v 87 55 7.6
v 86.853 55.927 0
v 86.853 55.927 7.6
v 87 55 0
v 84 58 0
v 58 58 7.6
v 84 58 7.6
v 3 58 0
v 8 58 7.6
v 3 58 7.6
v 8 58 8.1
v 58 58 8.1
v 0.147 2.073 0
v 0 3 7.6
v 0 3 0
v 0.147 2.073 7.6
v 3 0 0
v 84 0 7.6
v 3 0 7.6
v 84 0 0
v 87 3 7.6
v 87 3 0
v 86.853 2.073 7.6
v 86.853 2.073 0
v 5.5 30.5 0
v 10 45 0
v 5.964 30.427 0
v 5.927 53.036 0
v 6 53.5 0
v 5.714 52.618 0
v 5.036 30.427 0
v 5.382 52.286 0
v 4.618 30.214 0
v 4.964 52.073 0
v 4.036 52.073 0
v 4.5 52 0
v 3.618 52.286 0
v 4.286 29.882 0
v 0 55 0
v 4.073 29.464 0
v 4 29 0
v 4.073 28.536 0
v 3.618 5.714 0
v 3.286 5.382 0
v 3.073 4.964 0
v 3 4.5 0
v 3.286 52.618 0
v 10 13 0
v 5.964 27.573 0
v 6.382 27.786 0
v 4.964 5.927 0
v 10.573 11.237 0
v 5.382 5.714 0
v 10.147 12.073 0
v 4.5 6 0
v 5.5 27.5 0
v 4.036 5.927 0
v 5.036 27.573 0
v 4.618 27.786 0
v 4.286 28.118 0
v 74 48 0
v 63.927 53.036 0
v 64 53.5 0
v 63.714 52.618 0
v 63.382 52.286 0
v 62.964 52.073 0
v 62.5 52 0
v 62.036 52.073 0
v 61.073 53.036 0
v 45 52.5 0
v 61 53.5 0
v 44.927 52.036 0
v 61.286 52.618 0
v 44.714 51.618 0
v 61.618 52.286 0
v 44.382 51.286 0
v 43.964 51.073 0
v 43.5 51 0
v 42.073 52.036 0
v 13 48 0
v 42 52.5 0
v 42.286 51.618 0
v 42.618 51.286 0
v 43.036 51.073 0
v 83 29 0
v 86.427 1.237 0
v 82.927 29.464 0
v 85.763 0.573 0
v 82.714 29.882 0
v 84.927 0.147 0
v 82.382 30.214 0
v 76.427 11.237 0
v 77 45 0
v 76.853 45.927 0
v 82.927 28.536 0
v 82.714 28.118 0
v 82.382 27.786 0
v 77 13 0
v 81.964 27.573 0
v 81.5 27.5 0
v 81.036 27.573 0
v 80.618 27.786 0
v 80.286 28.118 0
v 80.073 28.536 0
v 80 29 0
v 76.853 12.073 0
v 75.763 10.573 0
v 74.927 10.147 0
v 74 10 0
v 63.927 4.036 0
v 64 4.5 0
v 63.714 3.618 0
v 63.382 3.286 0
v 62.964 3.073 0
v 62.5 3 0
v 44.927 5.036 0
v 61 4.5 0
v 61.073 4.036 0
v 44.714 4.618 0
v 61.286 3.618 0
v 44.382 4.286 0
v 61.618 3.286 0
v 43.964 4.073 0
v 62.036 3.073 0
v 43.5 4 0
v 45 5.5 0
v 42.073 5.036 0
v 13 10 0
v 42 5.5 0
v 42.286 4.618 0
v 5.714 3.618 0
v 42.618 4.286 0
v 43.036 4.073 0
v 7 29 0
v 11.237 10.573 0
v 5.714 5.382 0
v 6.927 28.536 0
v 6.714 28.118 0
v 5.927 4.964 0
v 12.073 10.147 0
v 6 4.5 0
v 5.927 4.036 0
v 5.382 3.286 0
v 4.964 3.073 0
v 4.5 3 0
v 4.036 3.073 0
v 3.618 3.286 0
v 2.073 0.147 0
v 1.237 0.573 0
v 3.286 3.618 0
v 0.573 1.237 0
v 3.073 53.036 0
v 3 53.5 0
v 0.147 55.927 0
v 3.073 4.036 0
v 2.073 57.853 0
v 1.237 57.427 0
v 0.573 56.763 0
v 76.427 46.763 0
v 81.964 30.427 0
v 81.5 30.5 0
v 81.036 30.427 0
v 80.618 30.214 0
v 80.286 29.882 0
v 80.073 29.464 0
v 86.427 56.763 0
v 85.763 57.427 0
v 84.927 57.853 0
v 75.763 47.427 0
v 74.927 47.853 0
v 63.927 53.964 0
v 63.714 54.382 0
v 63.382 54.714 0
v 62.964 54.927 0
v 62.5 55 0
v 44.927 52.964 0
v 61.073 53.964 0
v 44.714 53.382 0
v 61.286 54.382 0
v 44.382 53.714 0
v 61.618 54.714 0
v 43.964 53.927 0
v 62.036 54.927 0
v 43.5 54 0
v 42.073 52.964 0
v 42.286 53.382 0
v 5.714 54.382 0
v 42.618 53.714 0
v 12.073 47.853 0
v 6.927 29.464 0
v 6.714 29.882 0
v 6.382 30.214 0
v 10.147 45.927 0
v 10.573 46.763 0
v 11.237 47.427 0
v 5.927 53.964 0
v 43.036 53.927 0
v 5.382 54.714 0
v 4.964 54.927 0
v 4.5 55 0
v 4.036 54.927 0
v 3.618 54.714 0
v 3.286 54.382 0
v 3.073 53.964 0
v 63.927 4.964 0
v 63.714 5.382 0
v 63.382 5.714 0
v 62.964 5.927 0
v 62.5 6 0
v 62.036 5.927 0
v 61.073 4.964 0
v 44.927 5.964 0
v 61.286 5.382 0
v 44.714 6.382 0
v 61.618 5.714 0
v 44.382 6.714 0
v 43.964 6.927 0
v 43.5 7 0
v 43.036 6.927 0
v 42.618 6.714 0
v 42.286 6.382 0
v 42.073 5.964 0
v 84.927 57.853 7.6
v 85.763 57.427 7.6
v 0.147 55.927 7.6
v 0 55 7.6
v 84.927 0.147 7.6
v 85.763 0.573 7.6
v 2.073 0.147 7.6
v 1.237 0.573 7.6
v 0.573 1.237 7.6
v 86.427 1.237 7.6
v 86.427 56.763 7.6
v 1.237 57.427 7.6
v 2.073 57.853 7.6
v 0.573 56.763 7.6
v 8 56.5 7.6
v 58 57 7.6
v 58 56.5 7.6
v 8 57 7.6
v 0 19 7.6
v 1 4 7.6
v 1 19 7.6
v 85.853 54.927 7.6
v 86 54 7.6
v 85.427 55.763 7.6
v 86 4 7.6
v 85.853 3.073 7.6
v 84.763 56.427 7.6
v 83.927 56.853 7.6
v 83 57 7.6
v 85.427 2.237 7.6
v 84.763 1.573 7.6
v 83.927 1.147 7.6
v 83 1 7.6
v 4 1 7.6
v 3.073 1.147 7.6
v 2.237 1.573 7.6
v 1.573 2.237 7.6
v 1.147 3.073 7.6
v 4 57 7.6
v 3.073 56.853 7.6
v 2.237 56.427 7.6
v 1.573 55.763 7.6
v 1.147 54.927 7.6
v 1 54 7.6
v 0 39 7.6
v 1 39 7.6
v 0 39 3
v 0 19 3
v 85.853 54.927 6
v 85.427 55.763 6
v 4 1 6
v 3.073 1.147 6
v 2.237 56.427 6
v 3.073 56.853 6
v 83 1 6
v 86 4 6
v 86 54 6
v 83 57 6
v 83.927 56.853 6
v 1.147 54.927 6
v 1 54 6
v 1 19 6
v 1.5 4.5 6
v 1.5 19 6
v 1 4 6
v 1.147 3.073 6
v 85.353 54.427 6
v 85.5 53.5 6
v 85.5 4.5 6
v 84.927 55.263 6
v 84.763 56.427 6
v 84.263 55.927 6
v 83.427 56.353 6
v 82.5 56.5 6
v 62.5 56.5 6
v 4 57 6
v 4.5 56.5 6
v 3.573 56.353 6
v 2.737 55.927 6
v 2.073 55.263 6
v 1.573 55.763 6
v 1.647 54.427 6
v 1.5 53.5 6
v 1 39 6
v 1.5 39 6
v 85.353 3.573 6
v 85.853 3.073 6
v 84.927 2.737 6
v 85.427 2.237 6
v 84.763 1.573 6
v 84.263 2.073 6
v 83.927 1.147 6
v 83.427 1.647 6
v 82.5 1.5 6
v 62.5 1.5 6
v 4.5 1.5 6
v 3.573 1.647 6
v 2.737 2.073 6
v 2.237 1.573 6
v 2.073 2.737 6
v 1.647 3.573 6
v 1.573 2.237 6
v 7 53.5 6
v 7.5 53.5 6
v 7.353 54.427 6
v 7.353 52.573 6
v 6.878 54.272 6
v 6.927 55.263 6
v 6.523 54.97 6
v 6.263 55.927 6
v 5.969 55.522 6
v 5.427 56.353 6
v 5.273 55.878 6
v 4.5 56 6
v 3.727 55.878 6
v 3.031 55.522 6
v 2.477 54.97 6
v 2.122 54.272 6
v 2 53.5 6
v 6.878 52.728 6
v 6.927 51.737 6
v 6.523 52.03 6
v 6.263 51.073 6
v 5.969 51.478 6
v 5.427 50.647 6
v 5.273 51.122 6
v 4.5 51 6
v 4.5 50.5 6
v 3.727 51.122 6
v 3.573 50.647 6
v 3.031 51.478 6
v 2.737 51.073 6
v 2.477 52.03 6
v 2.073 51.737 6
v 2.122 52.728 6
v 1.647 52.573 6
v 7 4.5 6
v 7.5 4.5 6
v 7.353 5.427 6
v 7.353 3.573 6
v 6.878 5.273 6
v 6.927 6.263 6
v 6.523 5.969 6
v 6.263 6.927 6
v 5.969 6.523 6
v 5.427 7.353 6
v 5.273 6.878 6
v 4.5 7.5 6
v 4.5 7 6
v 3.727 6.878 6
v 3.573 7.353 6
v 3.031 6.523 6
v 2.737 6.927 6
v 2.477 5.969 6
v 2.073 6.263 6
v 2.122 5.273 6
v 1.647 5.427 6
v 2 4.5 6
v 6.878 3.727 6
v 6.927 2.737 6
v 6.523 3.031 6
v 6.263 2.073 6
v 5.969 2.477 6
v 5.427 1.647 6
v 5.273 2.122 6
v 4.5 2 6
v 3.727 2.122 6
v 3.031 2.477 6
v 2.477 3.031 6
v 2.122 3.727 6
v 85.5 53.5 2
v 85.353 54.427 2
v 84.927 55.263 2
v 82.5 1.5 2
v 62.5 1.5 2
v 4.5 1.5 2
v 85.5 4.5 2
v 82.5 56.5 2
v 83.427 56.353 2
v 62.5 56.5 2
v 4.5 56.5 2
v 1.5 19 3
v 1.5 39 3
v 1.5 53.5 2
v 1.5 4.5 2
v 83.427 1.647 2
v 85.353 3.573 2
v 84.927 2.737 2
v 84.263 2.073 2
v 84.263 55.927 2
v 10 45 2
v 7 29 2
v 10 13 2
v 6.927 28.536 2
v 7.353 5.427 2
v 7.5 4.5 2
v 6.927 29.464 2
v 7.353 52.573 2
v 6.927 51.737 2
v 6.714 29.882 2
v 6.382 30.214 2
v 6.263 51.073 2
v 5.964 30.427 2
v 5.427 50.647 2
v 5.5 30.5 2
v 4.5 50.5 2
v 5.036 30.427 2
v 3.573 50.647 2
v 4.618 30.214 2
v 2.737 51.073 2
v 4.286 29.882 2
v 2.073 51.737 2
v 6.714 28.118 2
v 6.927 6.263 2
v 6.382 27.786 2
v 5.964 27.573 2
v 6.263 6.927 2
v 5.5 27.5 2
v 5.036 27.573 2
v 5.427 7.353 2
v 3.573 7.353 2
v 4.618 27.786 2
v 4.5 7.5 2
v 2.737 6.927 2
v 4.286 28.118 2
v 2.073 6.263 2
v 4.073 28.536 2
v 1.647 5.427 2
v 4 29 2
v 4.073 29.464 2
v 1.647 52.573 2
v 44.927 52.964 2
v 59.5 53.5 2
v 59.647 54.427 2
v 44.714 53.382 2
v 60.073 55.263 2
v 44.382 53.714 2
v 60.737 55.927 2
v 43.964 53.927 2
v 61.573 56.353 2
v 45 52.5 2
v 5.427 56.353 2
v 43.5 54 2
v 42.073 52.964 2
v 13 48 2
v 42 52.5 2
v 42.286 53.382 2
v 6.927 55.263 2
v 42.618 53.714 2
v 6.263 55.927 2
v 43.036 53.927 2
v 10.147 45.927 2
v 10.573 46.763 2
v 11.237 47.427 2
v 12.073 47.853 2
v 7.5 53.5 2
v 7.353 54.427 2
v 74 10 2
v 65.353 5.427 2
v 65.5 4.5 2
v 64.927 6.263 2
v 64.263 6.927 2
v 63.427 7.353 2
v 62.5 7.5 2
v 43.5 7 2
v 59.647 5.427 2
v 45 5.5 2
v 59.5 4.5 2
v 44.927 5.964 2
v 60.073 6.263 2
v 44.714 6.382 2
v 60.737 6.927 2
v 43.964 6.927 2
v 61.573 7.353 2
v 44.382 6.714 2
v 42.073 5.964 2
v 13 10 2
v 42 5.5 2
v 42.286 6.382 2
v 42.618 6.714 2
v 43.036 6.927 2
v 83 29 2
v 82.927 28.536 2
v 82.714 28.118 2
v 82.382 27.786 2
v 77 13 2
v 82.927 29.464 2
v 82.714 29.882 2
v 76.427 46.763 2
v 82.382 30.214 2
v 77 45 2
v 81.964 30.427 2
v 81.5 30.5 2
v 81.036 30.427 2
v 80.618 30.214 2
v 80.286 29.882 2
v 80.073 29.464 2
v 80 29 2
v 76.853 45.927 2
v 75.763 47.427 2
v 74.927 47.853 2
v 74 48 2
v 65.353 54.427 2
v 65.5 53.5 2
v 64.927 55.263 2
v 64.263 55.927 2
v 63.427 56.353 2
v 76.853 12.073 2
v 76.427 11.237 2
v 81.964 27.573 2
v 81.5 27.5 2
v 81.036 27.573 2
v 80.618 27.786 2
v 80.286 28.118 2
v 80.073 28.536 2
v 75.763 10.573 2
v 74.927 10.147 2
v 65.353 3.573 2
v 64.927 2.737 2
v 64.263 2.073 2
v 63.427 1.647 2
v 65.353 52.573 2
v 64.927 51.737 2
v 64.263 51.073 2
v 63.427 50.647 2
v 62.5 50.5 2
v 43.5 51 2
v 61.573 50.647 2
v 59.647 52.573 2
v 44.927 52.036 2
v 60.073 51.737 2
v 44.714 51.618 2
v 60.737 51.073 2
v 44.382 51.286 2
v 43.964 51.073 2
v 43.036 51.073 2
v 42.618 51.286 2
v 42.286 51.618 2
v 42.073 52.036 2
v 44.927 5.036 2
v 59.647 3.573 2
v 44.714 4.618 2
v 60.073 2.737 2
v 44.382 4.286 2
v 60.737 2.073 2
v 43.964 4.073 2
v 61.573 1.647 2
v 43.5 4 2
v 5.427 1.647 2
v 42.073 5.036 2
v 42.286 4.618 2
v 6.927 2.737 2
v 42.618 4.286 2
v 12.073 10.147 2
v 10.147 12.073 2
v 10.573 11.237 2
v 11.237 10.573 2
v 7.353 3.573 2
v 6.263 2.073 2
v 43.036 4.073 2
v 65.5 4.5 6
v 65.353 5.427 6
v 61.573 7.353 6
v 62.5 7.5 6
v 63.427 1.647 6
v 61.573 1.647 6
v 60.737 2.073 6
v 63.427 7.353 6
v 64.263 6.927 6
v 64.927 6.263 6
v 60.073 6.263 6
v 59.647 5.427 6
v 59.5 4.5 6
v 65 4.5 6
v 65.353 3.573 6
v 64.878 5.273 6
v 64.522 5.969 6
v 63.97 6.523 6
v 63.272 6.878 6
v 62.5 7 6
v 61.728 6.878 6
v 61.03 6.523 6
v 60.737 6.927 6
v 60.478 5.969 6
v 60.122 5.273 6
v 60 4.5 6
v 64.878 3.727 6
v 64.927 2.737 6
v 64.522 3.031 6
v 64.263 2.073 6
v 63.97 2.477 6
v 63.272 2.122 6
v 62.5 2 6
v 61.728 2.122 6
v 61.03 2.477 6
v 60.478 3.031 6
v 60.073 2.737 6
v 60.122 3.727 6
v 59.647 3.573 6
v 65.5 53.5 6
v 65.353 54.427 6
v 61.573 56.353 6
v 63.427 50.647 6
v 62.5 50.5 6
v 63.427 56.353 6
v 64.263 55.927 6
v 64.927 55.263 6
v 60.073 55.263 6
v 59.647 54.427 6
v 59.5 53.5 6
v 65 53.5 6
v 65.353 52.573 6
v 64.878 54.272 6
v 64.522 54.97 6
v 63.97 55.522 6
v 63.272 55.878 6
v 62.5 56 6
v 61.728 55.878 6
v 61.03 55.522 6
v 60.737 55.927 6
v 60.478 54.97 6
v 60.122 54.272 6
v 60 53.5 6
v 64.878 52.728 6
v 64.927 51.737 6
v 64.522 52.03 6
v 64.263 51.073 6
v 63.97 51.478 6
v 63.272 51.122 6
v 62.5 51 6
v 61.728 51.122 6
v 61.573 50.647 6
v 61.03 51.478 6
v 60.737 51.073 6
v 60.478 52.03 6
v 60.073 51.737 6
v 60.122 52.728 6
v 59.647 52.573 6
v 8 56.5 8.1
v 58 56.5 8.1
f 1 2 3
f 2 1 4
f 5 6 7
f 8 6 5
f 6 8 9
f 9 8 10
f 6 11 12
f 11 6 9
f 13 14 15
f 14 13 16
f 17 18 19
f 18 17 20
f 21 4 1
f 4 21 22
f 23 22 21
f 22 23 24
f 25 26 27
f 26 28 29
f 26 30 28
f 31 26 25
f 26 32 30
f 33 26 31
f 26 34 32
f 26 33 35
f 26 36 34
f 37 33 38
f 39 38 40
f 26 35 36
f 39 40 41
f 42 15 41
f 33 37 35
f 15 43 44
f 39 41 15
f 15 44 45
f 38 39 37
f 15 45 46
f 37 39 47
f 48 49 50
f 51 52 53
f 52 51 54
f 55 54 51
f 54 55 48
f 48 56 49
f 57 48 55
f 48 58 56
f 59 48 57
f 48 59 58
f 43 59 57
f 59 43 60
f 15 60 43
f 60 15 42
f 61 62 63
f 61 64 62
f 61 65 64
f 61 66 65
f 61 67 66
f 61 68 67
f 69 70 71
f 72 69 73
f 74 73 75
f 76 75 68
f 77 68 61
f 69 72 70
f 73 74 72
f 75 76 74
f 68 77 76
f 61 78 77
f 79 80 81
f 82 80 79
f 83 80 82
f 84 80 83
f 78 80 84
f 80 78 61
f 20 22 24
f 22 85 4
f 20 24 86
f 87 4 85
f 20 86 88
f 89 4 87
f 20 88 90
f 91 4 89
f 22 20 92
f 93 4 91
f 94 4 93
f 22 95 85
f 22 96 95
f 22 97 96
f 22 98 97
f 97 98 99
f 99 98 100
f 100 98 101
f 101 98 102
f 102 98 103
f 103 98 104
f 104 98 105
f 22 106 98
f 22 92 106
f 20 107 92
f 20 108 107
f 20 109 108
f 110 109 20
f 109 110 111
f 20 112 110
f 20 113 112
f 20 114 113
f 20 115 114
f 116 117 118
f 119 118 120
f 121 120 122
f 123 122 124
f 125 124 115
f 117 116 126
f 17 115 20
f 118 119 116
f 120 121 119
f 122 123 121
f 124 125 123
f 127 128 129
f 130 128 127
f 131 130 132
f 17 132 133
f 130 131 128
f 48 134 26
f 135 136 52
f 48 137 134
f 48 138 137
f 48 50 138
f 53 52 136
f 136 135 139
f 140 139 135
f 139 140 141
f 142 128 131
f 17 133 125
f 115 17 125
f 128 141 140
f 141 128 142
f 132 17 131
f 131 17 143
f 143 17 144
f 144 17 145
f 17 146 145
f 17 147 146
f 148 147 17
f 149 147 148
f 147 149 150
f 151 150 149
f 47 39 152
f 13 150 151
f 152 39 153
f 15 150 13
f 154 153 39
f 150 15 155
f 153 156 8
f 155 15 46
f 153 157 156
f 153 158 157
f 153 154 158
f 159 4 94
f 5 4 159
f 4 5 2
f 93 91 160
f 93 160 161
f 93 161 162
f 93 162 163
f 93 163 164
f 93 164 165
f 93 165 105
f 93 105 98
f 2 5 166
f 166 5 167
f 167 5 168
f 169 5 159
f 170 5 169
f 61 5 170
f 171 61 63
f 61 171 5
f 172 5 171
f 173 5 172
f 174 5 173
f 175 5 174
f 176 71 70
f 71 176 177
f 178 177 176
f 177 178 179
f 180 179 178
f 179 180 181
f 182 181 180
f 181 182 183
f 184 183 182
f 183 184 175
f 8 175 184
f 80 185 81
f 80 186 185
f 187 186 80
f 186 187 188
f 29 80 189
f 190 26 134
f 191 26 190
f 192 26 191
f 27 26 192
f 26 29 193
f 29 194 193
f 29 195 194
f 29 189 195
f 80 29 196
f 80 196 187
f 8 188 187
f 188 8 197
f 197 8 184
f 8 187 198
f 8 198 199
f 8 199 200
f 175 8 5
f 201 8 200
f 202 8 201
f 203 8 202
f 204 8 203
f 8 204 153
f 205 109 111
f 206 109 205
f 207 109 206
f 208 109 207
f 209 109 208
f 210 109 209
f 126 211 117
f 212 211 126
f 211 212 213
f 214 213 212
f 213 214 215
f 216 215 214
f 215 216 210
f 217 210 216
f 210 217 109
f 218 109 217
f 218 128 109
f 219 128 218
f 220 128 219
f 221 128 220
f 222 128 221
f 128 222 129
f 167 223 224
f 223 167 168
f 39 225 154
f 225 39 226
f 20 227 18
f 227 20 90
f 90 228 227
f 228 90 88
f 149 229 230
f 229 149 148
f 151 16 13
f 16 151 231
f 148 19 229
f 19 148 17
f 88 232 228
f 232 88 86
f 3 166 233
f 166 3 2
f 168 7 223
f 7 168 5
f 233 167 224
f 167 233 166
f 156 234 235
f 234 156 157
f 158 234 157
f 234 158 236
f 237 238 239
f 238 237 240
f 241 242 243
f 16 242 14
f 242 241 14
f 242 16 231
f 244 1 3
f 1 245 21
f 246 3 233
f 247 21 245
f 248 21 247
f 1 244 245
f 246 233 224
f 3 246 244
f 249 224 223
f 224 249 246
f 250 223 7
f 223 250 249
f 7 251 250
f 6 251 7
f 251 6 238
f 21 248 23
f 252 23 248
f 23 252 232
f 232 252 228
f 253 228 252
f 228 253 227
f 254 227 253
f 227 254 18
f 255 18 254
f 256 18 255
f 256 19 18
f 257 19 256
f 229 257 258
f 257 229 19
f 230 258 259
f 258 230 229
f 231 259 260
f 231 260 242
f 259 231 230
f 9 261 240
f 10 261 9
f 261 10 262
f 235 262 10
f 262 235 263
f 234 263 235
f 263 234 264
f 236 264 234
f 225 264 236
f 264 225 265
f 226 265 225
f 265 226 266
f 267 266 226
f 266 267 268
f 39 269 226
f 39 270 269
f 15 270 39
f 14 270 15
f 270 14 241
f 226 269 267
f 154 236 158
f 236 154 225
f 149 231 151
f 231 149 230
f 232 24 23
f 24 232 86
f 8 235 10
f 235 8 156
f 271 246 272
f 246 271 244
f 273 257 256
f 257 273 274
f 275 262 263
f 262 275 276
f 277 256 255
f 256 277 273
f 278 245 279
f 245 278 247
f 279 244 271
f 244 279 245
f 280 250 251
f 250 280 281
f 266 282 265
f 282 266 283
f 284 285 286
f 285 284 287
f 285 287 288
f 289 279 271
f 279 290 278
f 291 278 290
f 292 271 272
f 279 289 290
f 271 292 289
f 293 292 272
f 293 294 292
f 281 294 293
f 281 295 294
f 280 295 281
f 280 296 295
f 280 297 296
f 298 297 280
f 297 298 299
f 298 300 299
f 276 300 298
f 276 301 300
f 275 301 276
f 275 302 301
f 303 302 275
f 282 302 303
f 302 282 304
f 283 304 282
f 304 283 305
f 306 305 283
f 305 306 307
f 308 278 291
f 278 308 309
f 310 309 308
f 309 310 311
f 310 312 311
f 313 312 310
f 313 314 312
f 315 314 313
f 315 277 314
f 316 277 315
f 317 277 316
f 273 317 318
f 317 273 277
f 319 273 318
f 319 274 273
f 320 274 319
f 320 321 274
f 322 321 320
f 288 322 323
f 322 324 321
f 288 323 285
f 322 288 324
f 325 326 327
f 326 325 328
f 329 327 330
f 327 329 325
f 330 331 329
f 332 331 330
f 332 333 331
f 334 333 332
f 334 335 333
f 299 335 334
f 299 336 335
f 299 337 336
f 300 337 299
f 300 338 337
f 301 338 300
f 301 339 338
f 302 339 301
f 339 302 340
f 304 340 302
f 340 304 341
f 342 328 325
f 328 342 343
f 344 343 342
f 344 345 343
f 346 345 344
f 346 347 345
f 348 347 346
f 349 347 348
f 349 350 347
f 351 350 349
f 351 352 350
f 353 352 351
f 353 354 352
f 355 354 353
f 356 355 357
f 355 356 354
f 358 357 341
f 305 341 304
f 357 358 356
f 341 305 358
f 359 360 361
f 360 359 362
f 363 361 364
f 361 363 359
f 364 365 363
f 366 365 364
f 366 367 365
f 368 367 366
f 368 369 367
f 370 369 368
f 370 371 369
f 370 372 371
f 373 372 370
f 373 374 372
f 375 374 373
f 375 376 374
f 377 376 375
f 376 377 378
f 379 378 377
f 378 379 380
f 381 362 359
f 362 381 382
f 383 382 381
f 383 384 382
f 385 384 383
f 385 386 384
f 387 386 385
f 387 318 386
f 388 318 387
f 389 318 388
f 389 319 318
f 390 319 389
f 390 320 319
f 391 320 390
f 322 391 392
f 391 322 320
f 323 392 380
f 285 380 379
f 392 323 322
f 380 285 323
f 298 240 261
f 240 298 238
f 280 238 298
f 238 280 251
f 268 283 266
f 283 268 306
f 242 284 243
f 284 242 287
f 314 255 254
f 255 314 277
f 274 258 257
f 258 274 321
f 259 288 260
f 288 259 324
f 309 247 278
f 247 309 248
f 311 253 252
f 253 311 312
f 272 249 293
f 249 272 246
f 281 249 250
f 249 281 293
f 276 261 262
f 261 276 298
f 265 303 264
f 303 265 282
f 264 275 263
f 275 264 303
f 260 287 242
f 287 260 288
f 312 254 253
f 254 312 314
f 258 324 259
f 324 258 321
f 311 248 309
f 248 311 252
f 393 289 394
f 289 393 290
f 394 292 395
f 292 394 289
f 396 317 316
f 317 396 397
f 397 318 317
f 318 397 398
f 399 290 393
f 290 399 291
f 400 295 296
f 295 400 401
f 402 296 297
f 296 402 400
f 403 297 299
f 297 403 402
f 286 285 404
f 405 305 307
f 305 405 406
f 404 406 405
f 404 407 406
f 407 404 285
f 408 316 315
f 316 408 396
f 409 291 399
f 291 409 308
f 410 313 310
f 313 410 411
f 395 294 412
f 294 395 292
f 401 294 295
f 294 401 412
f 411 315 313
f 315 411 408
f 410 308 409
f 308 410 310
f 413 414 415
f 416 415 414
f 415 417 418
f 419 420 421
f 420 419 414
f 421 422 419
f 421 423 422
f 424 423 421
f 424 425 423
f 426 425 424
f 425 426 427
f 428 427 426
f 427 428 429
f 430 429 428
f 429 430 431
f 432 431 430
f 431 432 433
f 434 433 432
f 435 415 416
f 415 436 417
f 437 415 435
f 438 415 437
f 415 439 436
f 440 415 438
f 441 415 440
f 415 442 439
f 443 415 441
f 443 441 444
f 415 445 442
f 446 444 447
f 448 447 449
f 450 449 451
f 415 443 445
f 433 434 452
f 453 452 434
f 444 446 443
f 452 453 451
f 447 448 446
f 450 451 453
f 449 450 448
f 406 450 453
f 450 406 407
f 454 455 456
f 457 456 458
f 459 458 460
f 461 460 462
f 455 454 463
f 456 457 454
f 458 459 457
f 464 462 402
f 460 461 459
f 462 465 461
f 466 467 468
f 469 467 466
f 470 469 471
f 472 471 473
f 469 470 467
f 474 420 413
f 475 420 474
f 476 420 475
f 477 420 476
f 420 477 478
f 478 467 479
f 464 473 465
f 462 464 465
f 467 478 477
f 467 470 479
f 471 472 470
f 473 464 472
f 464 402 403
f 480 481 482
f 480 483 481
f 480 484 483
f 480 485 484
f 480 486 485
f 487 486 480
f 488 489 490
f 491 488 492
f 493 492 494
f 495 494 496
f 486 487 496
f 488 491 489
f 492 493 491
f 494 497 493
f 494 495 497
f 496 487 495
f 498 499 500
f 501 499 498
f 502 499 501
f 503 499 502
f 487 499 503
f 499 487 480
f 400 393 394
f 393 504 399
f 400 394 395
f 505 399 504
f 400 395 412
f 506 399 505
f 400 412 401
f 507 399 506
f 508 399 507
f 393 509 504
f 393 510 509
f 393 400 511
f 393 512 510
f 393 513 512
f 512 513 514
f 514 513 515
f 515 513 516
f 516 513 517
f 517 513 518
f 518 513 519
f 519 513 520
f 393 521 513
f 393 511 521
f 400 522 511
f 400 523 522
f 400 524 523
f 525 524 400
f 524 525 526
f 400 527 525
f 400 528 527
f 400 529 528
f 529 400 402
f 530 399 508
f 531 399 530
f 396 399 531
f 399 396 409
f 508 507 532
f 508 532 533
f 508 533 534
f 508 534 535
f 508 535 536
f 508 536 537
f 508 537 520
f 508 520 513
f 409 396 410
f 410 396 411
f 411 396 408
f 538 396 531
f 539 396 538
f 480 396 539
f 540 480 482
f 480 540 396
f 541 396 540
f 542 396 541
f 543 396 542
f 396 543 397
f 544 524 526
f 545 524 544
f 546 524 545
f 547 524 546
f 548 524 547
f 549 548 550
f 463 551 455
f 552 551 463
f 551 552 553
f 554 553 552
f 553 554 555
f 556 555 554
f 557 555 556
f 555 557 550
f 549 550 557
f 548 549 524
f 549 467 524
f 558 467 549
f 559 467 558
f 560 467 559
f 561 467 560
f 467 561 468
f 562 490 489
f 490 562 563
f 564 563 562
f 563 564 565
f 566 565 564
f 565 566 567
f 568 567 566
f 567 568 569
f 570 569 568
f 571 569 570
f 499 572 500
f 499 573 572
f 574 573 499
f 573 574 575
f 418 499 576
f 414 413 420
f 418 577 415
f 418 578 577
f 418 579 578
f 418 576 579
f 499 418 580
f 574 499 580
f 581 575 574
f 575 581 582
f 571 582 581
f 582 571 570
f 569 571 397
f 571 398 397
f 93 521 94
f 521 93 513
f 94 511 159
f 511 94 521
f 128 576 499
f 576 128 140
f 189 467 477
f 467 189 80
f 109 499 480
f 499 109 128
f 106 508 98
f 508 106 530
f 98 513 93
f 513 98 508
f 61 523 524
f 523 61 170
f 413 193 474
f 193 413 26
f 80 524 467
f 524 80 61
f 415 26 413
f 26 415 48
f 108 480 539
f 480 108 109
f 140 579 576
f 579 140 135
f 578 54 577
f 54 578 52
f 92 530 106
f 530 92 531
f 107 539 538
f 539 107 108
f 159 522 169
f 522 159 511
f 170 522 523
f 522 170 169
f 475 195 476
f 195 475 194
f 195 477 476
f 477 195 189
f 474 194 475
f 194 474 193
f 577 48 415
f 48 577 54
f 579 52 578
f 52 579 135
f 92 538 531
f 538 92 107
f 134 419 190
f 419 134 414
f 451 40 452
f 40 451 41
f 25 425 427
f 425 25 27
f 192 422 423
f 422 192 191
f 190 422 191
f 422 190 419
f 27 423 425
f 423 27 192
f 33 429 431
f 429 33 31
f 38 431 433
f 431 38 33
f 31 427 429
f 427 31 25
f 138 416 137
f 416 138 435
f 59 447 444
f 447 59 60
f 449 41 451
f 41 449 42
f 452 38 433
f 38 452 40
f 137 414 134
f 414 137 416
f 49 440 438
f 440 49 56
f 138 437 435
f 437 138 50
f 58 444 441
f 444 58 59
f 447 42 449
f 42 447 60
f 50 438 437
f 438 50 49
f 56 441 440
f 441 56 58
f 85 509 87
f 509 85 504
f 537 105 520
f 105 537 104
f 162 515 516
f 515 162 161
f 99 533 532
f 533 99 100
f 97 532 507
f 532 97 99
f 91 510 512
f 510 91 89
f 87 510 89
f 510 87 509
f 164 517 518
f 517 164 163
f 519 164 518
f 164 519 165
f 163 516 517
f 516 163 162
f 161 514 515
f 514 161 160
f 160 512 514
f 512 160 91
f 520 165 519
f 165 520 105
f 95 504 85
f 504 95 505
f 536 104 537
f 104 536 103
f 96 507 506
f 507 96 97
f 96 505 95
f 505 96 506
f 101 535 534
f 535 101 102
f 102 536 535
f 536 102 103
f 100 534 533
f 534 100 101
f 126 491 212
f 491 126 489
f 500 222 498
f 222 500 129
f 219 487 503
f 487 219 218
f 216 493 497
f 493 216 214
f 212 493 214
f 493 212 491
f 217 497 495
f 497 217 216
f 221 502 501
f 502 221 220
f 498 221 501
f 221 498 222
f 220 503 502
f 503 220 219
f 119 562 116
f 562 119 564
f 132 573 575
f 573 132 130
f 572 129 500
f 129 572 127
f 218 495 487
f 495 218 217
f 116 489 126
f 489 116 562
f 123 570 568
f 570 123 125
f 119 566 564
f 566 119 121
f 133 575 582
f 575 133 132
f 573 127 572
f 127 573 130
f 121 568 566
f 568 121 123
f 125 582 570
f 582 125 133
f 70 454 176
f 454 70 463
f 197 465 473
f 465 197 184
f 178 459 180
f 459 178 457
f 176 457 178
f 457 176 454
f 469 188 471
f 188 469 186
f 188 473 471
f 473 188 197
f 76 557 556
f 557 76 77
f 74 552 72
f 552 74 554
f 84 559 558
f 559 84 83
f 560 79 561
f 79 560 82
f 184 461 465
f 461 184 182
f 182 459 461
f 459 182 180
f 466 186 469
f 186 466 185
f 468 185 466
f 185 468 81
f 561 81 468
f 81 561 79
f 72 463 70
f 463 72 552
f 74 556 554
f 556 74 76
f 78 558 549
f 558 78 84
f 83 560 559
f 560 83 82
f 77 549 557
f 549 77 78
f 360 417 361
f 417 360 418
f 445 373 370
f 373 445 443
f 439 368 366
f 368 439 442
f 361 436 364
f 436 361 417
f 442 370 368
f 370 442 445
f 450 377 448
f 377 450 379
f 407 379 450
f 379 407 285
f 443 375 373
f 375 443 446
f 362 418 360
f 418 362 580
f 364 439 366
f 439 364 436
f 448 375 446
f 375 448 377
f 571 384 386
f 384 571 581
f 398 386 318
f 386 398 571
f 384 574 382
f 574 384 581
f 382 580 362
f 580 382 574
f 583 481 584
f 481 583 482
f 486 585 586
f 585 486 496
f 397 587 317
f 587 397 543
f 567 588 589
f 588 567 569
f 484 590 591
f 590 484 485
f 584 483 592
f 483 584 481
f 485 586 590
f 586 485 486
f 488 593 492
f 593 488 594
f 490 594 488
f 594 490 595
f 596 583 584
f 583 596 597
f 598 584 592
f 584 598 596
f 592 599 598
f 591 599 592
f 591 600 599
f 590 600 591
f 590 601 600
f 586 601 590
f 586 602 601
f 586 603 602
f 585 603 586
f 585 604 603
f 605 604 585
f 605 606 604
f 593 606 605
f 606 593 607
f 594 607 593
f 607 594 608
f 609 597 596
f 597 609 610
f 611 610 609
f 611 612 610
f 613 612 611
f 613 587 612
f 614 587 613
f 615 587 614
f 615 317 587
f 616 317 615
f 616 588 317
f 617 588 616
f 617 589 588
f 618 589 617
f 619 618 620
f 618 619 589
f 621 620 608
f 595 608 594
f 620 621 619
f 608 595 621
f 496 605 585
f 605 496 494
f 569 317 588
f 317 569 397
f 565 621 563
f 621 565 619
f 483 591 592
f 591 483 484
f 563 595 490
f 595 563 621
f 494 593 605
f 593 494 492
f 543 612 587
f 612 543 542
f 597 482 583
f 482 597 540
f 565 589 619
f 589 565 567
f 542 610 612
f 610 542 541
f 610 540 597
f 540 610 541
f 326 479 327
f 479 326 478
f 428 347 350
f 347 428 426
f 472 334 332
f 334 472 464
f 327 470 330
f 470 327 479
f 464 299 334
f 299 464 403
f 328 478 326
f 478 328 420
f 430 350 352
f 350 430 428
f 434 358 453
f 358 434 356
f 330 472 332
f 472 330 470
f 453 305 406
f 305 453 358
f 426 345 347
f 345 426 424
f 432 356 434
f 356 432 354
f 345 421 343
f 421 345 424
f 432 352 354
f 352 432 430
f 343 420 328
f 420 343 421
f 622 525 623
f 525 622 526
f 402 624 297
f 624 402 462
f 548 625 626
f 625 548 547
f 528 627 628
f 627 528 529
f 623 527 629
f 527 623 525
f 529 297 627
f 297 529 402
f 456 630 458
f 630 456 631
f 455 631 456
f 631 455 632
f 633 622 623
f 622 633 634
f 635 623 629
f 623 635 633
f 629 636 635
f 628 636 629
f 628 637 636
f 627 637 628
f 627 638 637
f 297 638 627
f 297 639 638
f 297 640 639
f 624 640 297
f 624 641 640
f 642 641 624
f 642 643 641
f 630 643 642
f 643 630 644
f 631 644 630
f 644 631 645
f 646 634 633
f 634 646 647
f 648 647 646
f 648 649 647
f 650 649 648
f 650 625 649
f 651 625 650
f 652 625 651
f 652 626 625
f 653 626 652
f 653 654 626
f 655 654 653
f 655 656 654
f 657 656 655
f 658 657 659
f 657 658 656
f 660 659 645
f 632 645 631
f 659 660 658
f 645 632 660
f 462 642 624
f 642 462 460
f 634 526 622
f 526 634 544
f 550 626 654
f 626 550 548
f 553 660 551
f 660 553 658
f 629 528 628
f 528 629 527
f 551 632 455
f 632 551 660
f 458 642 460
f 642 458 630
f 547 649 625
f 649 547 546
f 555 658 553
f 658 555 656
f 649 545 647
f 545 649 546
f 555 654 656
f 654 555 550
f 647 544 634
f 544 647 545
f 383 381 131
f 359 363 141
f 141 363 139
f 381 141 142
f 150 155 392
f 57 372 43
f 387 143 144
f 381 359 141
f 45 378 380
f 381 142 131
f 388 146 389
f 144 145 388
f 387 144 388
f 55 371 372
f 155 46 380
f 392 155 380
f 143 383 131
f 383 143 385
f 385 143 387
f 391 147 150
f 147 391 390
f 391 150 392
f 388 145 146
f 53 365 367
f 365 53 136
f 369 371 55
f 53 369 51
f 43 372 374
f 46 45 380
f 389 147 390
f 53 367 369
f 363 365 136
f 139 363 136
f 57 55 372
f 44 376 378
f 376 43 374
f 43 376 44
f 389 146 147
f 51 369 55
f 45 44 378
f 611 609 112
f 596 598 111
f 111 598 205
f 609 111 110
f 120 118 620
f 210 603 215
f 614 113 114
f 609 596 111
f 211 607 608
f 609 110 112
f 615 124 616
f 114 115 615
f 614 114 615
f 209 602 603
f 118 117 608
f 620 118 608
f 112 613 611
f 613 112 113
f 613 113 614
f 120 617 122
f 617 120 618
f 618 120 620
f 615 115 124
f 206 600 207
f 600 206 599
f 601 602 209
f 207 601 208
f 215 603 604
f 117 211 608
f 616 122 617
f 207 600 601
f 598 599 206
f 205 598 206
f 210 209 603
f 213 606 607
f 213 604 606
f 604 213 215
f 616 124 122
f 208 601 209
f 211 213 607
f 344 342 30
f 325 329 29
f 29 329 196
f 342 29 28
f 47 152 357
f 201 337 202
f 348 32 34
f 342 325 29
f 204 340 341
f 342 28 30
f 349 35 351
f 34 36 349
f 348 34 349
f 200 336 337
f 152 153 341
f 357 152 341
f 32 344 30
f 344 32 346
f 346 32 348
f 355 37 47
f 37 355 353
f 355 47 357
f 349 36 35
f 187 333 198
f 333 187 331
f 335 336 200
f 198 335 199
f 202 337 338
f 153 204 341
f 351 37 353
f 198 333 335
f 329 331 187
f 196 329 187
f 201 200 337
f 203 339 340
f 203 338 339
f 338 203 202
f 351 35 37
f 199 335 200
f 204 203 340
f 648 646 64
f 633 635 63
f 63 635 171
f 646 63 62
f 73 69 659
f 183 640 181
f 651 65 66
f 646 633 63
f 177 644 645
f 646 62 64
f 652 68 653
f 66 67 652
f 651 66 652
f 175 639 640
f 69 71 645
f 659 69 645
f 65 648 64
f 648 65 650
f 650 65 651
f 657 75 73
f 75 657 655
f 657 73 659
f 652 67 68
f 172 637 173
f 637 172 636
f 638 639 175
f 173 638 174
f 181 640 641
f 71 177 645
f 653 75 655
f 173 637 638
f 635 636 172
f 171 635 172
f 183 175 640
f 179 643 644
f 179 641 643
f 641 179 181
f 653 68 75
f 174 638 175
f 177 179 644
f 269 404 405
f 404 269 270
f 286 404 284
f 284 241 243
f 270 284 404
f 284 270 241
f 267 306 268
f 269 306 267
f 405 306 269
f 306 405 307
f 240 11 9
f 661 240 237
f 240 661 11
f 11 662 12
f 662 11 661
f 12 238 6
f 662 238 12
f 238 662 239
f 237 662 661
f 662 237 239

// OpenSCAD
// file: ../_lib/primitives.scad
/**
 * A centered cube, but flat on the Z-Surface
 */
module ccube(v) {
    translate([0, 0, v.z/2]) cube(v, true);
}

/**
 * An upright standing centered cylinder, flat on the Z-Surface
 */
module ccylinder_y(h, d) {
    translate([h/-2, 0, d/2])
        rotate([0, 90, 0])
            cylinder(h=h, d=d);
}

/**
 * Creates a rounded cube
 *
 * @param {vector} v The size of the cube
 * @param {number} r The radius of the rounding
 * @param {bool} flatcenter centered but flat on Z
 */
module roundedCube(v, r=1, flatcenter=true) {
    mv = flatcenter ? [0,0,0] : [v.x/2, v.y/2 ,0];

    translate(mv) hull() {
        // right back bottom
        translate([v.x/2 - r, v.y/2 - r, r])
            sphere(r=r);

        // right front bottom
        translate([v.x/2 - r, v.y/-2 + r, r])
            sphere(r=r);

        // left back bottom
        translate([v.x/-2 + r, v.y/2 - r, r])
            sphere(r=r);

        // left front bottom
        translate([v.x/-2 + r, v.y/-2 + r, r])
            sphere(r=r);


        // right back top
        translate([v.x/2 - r, v.y/2 - r, v.z - r])
            sphere(r=r);

        // right front top
        translate([v.x/2 - r, v.y/-2 + r, v.z - r])
            sphere(r=r);

        // left back top
        translate([v.x/-2 + r, v.y/2 - r, v.z - r])
            sphere(r=r);

        // left front top
        translate([v.x/-2 + r, v.y/-2 + r, v.z - r])
            sphere(r=r);
    }
}

/**
 * Similar to the rounded cube, but the top and bottom are flat
 * @param {vector} v The size of the cube
 * @param {number} r The radius of the rounding
 * @param {bool} flatcenter centered but flat on Z
 */
module curvedCube(v, r=1, flatcenter=true) {
    mv = flatcenter ? [v.x/-2, v.y/-2 ,0] : [0,0,0];

    translate(mv) hull() {
        // right back
        translate([v.x - r, v.y - r, 0])
            cylinder(h=v.z, r=r);
        
        // right front
        translate([v.x - r, r, 0])
            cylinder(h=v.z, r=r);

        // left back
        translate([r, v.y - r, 0])
            cylinder(h=v.z, r=r);

        // left front
        translate([r, r, 0])
            cylinder(h=v.z, r=r);
    }
}
// main file
$fn=20;
use <../_lib/primitives.scad>

// official Raspberry Pi sizes
rpi = [85, 56, 1.6];
rpi_radius = 3;

walls = 2;
space = 4;
overlap = 0.5;

// create the model
difference() {
    union() {
        rim();
        frame();
        pins(3, 3); //outer
    }
    pins(1.5, 2.5); // inner
    sdcard();
}
grab();

/**
 * Create the space for the SD card
 */
module sdcard() {
    height = 3;
    width = 20;
    
    translate([0, (rpi.y+walls)/2 - width/2, walls + space - height])
    cube([walls, width, rpi.z + height]);
}

/**
 * Create the lip to help with holding the RPi in place
 */
module grab() {
    long = 50;
    long_off = 7;
    short = 6;
    short_off1 = 16;
    short_off2 = 72;
   
    translate([long_off + walls/2, rpi.y + walls/2 - overlap, walls+space+rpi.z])
        cube([long, overlap + walls/2, overlap]);
    
    /*
    translate([short_off1 + walls/2, 0, walls+space+rpi.z])
        cube([short, overlap + walls/2, overlap]);
    
    translate([short_off2 + walls/2, 0, walls+space+rpi.z])
        cube([short, overlap + walls/2, overlap]);
    */
}

/**
 * Create cylinders at the mount hole positions
 *
 * @param {number} r1 size of the lower diameter
 * @param {number} r2 size of the upper diameter
 */
module pins(r1, r2) {
    // official positions of the RPi mount holes
    bl = [3.5, 3.5];
    br = [3.5 + 58, 3.5];
    tl = [3.5, 3.5 + 49];
    tr = [3.5 + 58, 3.5 + 49];

    translate([walls/2, walls/2]) {
        translate(bl) {
            cylinder(h=space+walls, r1=r1, r2=r2);
        }
        translate(br) {
            cylinder(h=space+walls, r1=r1, r2=r2);
        }
        translate(tl) {
            cylinder(h=space+walls, r1=r1, r2=r2);
        }
        translate(tr) {
            cylinder(h=space+walls, r1=r1, r2=r2);
        }
    }
}

/**
 * Creates the mounting frame with holes
 */
module frame() {
    frame = 10; // width of the frame
    screws = 1.5; // mounting hole radius
    
    translate([(rpi.x + walls)/2, (rpi.y + walls)/2])
    difference() {
        curvedCube(
            [rpi.x + walls, rpi.y + walls, walls],
            r=rpi_radius
        );

        curvedCube(
            [rpi.x + walls - frame * 2, rpi.y + walls - frame * 2, walls],
            r=rpi_radius
        );
        
        translate([rpi.x/-2 + frame/2 - screws + walls/2, 0])
            cylinder(r=screws, h=walls);
        
        translate([rpi.x/2 - frame/2 + screws - walls/2, 0])
            cylinder(r=screws, h=walls);
        
        translate([0, rpi.y/-2 + frame/2 - screws + walls/2])
            cylinder(r=screws, h=walls);
        
        translate([0, rpi.y/2 - frame/2 + screws - walls/2])
            cylinder(r=screws, h=walls);
    }
}

/**
 * Create the rim around the RPi board
 */
module rim() {
    translate([(rpi.x + walls)/2, (rpi.y + walls)/2])
    
    difference() {
        curvedCube(
            [rpi.x + walls, rpi.y + walls, rpi.z + space + walls],
            r=rpi_radius
        );
        translate([0, 0, space + walls])
            curvedCube(rpi, r=rpi_radius);
        
        curvedCube(
            [rpi.x - overlap*2, rpi.y - overlap*2, rpi.z + space + walls],
            r=rpi_radius
        );
    }
}
